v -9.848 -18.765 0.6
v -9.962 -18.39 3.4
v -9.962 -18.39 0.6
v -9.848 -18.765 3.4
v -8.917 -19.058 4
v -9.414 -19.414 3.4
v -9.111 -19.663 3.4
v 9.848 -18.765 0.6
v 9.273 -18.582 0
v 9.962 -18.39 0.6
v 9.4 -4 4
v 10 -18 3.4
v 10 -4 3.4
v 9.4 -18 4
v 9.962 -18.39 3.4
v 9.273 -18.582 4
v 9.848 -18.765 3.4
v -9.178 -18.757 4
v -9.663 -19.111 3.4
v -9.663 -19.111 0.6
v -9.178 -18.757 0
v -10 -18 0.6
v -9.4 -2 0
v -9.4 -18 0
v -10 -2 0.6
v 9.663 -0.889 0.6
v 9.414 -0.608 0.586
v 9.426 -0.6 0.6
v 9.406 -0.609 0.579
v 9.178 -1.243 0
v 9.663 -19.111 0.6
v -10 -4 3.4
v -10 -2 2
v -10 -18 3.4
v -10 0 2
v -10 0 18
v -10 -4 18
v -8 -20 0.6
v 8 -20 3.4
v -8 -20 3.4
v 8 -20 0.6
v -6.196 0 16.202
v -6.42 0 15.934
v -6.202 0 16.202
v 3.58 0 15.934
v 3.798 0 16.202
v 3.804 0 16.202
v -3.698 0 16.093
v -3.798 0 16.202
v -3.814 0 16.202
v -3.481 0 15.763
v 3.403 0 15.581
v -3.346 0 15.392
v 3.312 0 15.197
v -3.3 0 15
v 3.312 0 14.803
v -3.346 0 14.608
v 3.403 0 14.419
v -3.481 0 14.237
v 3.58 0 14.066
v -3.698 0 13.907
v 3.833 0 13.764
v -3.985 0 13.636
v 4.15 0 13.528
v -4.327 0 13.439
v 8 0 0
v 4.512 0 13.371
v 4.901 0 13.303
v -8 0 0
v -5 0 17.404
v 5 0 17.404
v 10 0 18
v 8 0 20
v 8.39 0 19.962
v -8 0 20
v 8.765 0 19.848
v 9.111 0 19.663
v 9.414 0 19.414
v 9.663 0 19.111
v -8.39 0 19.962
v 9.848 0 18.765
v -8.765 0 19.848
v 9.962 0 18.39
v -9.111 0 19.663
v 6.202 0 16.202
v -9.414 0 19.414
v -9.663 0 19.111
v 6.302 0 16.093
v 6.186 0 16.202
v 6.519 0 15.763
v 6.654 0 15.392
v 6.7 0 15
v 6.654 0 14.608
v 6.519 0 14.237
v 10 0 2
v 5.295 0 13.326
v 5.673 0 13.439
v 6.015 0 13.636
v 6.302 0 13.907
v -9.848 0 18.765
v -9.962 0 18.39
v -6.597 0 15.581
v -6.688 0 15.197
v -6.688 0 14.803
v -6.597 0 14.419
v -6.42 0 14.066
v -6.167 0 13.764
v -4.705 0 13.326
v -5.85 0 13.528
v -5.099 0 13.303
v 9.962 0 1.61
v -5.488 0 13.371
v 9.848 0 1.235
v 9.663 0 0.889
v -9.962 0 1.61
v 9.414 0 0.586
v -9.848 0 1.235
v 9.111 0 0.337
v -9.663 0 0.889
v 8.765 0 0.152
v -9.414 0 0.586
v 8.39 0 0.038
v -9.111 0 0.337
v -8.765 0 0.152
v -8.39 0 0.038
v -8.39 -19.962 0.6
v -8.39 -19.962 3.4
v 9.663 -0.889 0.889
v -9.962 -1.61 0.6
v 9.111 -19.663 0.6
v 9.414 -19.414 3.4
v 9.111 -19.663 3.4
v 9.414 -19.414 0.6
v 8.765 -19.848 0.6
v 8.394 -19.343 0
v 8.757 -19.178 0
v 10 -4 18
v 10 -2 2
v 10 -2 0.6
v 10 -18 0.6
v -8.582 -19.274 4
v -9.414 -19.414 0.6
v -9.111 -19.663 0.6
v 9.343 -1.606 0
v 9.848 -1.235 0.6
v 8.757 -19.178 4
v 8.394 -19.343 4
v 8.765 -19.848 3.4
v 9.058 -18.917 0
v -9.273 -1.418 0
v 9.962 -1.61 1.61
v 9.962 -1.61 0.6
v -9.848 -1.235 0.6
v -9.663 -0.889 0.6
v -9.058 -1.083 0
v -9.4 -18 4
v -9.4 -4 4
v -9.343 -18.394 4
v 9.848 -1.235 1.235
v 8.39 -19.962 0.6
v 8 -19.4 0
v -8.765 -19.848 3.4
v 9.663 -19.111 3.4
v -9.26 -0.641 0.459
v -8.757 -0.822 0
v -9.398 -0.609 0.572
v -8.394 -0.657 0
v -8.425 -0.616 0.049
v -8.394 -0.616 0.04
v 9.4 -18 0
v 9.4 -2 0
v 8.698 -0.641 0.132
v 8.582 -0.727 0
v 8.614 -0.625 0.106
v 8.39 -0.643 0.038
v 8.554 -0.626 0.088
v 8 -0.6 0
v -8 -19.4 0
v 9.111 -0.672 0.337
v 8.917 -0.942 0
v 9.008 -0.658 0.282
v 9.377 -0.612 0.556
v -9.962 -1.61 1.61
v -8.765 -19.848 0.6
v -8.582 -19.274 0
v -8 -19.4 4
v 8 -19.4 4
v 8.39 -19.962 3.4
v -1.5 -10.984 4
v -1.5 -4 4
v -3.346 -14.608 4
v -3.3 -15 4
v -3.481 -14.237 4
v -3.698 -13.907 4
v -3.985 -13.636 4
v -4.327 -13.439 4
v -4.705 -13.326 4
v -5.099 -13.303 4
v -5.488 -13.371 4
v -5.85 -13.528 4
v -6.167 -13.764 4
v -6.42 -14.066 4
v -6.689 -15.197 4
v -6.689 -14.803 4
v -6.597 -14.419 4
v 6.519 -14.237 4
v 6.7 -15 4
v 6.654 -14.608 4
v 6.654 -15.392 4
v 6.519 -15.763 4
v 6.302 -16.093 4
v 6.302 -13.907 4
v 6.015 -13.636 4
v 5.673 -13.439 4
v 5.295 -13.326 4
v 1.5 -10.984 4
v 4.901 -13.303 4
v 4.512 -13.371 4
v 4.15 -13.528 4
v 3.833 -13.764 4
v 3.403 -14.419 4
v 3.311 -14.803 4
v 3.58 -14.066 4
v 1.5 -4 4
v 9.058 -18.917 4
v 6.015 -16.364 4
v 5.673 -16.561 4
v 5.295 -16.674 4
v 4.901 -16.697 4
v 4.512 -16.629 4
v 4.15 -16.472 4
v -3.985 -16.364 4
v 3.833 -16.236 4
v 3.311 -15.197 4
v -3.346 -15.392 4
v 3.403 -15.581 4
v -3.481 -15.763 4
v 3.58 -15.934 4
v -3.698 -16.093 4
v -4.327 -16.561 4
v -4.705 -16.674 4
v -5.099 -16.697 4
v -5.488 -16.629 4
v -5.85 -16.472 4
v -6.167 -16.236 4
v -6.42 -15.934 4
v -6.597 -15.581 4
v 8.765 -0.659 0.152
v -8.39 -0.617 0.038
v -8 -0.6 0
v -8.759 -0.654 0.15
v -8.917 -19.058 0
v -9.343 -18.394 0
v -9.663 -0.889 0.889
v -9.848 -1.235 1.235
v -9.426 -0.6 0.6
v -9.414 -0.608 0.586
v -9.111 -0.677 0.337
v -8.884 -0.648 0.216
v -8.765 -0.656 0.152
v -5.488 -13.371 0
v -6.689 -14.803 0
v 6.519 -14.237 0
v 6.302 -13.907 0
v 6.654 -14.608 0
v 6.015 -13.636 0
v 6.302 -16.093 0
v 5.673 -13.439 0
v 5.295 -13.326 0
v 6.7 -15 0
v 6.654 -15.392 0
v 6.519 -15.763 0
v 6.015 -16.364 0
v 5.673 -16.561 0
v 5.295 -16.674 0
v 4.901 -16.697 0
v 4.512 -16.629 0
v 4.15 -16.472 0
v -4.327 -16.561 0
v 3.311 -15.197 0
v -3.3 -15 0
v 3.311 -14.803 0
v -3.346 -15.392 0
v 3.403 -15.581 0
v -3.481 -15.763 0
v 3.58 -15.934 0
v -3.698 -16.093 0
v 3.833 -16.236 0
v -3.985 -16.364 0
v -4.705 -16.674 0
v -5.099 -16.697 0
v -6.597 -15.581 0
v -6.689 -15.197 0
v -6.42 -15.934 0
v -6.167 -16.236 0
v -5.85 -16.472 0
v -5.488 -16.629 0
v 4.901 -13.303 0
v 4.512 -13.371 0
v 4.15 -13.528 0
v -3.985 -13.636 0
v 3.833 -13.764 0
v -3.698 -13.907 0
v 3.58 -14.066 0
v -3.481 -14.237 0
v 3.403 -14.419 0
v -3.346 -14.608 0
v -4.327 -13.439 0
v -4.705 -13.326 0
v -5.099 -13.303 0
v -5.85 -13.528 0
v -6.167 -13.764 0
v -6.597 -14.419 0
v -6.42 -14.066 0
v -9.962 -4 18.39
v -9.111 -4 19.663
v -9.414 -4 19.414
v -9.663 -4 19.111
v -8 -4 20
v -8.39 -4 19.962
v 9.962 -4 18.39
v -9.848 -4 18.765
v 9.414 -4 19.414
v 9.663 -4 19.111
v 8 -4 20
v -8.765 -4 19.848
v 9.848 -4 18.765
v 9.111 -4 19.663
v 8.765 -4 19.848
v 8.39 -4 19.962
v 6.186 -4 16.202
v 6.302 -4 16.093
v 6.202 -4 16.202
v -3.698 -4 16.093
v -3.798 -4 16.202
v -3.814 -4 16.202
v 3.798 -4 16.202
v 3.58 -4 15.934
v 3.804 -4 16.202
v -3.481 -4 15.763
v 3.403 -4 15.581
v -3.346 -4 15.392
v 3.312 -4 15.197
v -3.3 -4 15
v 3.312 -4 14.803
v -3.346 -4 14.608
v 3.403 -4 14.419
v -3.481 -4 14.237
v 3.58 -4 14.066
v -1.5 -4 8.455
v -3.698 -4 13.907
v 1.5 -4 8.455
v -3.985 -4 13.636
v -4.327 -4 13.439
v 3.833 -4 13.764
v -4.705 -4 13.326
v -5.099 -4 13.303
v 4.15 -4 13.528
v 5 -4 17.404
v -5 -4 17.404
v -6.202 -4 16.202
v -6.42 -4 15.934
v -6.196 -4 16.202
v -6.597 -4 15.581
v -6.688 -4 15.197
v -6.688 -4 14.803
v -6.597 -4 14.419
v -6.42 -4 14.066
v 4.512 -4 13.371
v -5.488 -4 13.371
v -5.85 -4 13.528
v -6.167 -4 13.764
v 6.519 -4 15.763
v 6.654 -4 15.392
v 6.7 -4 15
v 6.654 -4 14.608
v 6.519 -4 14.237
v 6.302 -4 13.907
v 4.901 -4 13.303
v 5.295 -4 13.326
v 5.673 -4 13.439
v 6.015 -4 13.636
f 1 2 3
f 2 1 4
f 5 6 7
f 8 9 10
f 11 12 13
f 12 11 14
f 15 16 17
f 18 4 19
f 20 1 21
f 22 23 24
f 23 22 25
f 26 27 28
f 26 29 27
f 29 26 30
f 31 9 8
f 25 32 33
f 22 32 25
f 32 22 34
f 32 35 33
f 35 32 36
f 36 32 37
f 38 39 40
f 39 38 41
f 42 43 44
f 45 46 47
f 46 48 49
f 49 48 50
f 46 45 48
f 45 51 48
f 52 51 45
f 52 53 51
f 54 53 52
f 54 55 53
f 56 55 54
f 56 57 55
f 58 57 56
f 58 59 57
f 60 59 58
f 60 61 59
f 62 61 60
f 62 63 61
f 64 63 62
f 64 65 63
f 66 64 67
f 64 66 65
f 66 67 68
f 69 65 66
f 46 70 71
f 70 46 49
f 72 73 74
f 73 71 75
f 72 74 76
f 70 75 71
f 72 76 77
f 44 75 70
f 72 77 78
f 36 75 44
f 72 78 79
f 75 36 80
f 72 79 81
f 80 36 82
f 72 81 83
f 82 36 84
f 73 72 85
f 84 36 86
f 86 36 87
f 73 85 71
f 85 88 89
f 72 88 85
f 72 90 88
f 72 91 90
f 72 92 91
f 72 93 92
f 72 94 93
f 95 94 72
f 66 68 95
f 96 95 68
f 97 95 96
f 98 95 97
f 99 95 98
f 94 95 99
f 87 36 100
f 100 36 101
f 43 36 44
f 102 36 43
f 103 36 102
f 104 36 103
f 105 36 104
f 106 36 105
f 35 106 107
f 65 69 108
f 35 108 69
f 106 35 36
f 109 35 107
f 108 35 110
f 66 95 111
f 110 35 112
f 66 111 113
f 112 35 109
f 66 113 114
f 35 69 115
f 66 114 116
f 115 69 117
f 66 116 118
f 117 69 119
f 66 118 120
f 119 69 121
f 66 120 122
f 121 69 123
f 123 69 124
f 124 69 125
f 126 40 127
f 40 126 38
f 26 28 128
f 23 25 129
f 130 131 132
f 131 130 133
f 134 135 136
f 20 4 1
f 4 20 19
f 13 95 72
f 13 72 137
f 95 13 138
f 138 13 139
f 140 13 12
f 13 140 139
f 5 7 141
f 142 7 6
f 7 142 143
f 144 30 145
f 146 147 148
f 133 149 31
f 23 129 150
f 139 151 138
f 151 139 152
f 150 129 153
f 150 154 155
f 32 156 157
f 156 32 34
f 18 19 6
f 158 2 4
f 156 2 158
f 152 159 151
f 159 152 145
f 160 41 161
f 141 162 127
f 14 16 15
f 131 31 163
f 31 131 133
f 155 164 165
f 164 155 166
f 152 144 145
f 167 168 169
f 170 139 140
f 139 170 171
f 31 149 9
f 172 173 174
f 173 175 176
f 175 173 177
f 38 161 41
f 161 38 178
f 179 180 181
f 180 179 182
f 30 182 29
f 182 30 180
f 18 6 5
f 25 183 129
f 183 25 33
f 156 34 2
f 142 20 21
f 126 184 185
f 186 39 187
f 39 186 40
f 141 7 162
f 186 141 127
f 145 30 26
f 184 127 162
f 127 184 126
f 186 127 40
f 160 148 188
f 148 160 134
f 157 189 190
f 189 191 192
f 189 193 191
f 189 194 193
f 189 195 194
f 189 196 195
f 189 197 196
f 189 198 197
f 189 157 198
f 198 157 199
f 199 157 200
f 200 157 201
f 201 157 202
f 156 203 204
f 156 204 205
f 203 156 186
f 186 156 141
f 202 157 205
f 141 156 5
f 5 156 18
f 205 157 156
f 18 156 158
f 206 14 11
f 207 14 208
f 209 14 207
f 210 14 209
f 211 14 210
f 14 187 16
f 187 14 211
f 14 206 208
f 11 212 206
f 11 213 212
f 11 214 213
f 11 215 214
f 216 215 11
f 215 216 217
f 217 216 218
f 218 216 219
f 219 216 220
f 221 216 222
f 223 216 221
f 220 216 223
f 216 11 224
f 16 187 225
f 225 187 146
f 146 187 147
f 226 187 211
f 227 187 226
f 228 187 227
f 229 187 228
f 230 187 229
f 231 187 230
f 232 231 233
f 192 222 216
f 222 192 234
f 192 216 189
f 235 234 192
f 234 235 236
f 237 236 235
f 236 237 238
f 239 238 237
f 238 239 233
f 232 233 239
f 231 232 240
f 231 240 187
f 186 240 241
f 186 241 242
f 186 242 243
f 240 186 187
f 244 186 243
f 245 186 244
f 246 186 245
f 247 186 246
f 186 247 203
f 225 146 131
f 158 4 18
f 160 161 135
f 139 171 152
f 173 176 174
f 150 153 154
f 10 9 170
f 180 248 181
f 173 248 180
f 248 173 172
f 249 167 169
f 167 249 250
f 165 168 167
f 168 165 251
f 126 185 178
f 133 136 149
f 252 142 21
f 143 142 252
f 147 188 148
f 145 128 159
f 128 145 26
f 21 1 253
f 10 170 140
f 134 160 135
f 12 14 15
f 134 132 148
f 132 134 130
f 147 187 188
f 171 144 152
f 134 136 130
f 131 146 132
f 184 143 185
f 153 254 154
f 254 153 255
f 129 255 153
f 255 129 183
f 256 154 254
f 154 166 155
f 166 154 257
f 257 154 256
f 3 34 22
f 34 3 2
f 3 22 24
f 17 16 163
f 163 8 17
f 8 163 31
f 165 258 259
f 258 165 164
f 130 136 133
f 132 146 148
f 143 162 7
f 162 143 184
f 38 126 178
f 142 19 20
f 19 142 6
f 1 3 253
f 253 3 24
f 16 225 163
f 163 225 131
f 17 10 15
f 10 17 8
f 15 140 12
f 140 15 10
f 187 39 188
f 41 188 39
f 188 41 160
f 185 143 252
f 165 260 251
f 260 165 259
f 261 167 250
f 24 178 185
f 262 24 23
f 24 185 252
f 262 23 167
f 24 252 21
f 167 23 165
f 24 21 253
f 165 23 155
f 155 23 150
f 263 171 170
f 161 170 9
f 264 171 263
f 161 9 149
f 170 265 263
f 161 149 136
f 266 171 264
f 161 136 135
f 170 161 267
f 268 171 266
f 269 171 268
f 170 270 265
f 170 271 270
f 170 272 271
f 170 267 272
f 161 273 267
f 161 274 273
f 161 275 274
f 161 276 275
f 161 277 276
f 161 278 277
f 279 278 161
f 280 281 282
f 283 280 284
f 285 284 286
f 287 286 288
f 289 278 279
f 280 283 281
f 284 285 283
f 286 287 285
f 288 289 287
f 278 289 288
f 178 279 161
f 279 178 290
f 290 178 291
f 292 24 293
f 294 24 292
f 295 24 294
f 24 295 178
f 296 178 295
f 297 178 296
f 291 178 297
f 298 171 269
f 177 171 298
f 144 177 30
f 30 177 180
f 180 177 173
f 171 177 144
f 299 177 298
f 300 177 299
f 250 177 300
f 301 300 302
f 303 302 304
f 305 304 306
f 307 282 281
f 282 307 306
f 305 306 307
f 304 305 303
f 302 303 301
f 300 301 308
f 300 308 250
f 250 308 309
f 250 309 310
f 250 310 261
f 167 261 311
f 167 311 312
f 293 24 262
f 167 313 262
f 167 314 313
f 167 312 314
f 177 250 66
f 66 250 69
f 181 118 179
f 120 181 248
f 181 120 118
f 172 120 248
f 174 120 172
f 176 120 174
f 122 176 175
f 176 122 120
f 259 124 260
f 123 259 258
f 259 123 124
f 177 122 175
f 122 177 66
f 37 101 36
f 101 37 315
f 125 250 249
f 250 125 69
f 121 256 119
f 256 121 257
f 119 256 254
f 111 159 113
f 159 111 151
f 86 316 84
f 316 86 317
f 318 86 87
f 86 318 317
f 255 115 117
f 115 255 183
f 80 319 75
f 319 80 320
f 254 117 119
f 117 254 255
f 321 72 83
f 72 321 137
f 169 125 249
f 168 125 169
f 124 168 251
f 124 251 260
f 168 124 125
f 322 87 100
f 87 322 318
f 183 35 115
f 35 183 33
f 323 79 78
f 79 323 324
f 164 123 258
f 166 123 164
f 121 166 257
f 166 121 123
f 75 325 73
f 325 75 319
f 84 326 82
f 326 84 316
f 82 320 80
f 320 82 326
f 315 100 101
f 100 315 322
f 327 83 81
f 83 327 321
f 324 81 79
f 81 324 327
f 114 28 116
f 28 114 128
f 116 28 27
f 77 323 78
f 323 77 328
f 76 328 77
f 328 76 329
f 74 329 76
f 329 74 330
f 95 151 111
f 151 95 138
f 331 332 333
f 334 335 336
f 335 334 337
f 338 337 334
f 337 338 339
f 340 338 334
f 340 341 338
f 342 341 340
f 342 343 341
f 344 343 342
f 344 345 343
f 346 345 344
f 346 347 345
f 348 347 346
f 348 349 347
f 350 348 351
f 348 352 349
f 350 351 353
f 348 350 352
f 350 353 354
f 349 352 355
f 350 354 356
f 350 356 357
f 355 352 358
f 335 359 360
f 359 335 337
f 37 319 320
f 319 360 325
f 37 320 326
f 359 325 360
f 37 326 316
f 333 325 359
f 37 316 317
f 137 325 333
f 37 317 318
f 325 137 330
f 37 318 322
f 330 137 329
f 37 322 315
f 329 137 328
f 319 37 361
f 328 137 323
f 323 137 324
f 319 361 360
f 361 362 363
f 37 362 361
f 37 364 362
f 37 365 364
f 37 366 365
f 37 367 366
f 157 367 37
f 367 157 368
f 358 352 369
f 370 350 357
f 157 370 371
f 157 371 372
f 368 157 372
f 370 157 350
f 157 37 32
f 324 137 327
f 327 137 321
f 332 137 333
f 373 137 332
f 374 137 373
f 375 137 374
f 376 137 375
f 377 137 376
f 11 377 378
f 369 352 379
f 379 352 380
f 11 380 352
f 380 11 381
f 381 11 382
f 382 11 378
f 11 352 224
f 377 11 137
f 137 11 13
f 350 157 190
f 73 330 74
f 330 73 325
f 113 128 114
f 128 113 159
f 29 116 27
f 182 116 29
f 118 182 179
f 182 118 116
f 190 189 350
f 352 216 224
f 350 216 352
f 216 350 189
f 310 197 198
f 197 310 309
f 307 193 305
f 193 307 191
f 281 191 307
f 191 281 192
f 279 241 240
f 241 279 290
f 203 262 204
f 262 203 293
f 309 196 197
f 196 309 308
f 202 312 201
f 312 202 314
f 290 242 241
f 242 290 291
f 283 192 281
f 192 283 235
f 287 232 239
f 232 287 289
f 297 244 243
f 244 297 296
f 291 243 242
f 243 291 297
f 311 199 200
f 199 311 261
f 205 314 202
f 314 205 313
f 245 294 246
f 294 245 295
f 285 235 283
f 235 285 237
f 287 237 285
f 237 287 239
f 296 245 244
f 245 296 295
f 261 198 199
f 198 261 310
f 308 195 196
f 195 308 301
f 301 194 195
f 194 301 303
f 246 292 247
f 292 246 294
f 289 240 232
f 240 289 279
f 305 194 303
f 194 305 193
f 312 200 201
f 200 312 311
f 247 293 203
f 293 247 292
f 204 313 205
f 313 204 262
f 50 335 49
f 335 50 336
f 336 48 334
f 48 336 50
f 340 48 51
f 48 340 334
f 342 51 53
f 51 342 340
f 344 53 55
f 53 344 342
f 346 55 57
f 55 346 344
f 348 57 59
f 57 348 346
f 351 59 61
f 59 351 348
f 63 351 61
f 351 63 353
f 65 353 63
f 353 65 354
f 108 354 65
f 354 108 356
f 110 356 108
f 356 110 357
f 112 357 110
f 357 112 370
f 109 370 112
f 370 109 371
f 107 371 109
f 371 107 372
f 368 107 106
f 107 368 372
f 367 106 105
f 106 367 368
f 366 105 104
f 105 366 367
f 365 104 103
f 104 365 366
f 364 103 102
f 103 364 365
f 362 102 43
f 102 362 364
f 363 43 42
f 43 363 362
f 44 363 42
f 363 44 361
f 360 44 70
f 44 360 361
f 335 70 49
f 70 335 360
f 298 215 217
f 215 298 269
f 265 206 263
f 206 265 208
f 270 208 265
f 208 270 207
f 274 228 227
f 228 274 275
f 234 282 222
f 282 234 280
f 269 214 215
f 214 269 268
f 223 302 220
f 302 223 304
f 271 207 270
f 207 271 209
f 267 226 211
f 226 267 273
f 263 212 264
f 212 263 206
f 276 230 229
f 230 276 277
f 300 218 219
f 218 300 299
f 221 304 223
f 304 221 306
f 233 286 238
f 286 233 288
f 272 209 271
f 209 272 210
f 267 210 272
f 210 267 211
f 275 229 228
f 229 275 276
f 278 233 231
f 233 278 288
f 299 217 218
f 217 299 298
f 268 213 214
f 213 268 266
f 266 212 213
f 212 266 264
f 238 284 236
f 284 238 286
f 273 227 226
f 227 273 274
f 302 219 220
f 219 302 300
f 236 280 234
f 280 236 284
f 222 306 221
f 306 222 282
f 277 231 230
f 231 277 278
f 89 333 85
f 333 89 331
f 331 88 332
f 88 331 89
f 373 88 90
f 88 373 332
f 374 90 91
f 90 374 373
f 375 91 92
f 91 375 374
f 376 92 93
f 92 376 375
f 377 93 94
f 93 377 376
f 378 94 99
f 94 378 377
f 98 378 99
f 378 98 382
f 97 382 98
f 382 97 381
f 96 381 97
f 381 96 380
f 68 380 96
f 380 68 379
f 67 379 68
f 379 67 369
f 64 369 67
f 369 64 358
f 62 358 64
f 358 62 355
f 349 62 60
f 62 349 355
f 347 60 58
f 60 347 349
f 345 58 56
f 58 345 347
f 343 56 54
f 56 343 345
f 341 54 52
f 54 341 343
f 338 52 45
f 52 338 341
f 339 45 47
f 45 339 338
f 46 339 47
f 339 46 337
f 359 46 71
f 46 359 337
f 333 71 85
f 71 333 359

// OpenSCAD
// file: ../stem_core.scad
// =====================================================================
//  stem_core.scad — shared geometry helpers for every STEM_KIT part.
// =====================================================================
include <../PARAMETERS/config.scad>
// =====================================================================

// ---------- rounded / chamfered prisms --------------------------------

// Rounded rectangle (2D), centred.
module rrect(size, r) {
    rr = min(r, min(size[0], size[1]) / 2 - 0.01);
    offset(r = rr) square([size[0] - 2 * rr, size[1] - 2 * rr], center = true);
}

// Box with rounded vertical edges, chamfered bottom edge (elephant-foot
// relief) and rounded-ish (chamfered) top edge. Sits on z = 0, centred XY.
module rbox(size, r = 2, top = edge_r, bottom = chamfer) {
    h = size[2];
    hull() {
        linear_extrude(0.01) rrect([size[0] - 2 * bottom, size[1] - 2 * bottom], max(r - bottom, 0.1));
        translate([0, 0, bottom]) linear_extrude(h - bottom - top) rrect([size[0], size[1]], r);
        translate([0, 0, h - 0.01]) linear_extrude(0.01) rrect([size[0] - 2 * top, size[1] - 2 * top], max(r - top, 0.1));
    }
}

// Cylinder with chamfered/rounded top and bottom edges (safe hubs, knobs).
module rcyl(d, h, top = edge_r, bottom = chamfer) {
    rotate_extrude() polygon([
        [0, 0], [d / 2 - bottom, 0], [d / 2, bottom],
        [d / 2, h - top], [d / 2 - top, h], [0, h]
    ]);
}

// Stadium (slot / rounded bar) 2D between two points on the X axis.
module stadium2d(len, w) {
    hull() { circle(d = w); translate([len, 0]) circle(d = w); }
}

// ---------- holes ------------------------------------------------------

// Vertical through hole with small top/bottom chamfers.
module vhole(d = grid_hole_d, h = 50, ch = 0.4) {
    translate([0, 0, -h / 2]) cylinder(d = d, h = h);
}

// Horizontal hole along +Y, printable without supports (teardrop tip up).
module teardrop_y(d, len, center = true) {
    translate([0, center ? -len / 2 : 0, 0]) rotate([-90, 0, 0])
        linear_extrude(len) teardrop2d(d);
}
module teardrop_x(d, len, center = true) {
    translate([center ? -len / 2 : 0, 0, 0]) rotate([0, 90, 0]) rotate([0, 0, -90])
        linear_extrude(len) teardrop2d(d);
}
// 2D teardrop: circle + 45° roof pointing "up" in the final part (+Z).
// After rotate([-90,0,0]) local +Y becomes -Z, so the roof points to -Y here.
module teardrop2d(d) {
    r = d / 2;
    union() {
        circle(d = d);
        polygon([[-r * sqrt(2) / 2, -r * sqrt(2) / 2], [0, -r * sqrt(2)], [r * sqrt(2) / 2, -r * sqrt(2) / 2]]);
    }
}

// Hex nut pocket (flat sides parallel to X), opening at z = 0 going +Z.
module nut_pocket(depth = nut_pocket_depth, af = nut_pocket_af) {
    cylinder(d = af / cos(30), h = depth, $fn = 6);
}

// Side-entry nut slot: nut plane is XY, slot opens toward +dir (X).
// Centred on the screw axis (Z), slot height nut_slot_t, runs out `len`.
module nut_slot_x(len = 10, af = nut_pocket_af, t = nut_slot_t) {
    translate([0, 0, -t / 2]) hull() {
        cylinder(d = af / cos(30), h = t, $fn = 6);
        translate([len, 0, 0]) cylinder(d = af / cos(30), h = t, $fn = 6);
    }
}

// Counterbored clearance hole from top surface at height `top` downward.
module cbore(top, depth, d = counterbore_d) {
    translate([0, 0, top - depth]) cylinder(d = d, h = depth + 20);
    translate([0, 0, -20]) cylinder(d = grid_hole_d, h = top + 40);
}

// Grid of vertical holes: nx x ny, pitch grid_pitch, first hole centred
// at `origin` (XY). Used by every plate.
module grid_holes(nx, ny, origin = [0, 0], h = 100, d = grid_hole_d) {
    for (i = [0 : nx - 1], j = [0 : ny - 1])
        translate([origin[0] + i * grid_pitch, origin[1] + j * grid_pitch, 0]) vhole(d, h);
}

// Slot (for adjustable mounting) along X, length = travel.
module slot_x(travel, d = grid_hole_d, h = 100) {
    translate([-travel / 2, 0, -h / 2]) linear_extrude(h) stadium2d(travel, d);
}

// ---------- shaft bores ------------------------------------------------

// 2D bore profile: round, or D if shaft_flat > 0.
module bore2d(d) {
    if (shaft_flat > 0)
        intersection() { circle(d = d); translate([-d, -d / 2]) square([2 * d, d - shaft_flat + (d - shaft_diameter) / 2]); }
    else circle(d = d);
}

// Standard HUB: cylinder hub_d x hub_h standing on z = z0, with bore,
// radial M3 set screw at mid height and a captive-nut slot from the top.
// Call inside difference() for the cut-outs: hub_body()/hub_cuts().
module hub_body(z0, d = hub_d, h = hub_h) {
    translate([0, 0, z0]) rcyl(d, h, top = 0.8, bottom = 0);
}
module hub_cuts(z0, total_h, d = hub_d, h = hub_h, bore = shaft_fixed_bore, set_screw = true, screw_angle = 0) {
    // bore through everything
    translate([0, 0, -1]) linear_extrude(total_h + 2) bore2d(bore);
    // entry chamfer on bore
    translate([0, 0, total_h - 0.6]) cylinder(d1 = bore, d2 = bore + 1.2, h = 0.61);
    translate([0, 0, -0.01]) cylinder(d1 = bore + 1.2, d2 = bore, h = 0.6);
    if (set_screw) rotate([0, 0, screw_angle]) {
        zs = z0 + h / 2;
        // radial screw hole (teardrop, prints without support)
        translate([0, 0, zs]) teardrop_x(screw_clear_d, d, center = false);
        // captive nut slot, entered from the hub top face
        nr = bore / 2 + (d / 2 - bore / 2) / 2;       // radial position of nut
        translate([nr - nut_slot_t / 2, -nut_pocket_af / 2, zs - nut_pocket_af / cos(30) / 2 - 0.1])
            cube([nut_slot_t, nut_pocket_af, total_h + 10]);   // open to the hub top face
    }
}

// ---------- labels -----------------------------------------------------

// Engrave text into a top surface at height z (depth 0.6 = 3 layers).
module engrave(txt, size = 5, z = 0, depth = 0.6, halign = "center") {
    translate([0, 0, z - depth]) linear_extrude(depth + 1)
        text(txt, size = size, font = "Liberation Sans:style=Bold", halign = halign, valign = "center");
}

// ---------- misc -------------------------------------------------------

function grid_snap(v) = ceil(v / grid_pitch) * grid_pitch;
// file: ../../PARAMETERS/config.scad
// =====================================================================
//  STEM_KIT — CENTRAL PARAMETER FILE  ("ForgeGrid" mechanical standard)
// ---------------------------------------------------------------------
//  Every part in the library includes this file. Change a value here,
//  run `python3 tools/build.py`, and the whole library regenerates.
//  All dimensions in millimetres.
// =====================================================================

// ---------------------------------------------------------------------
// 1. PRINTER / PROCESS
// ---------------------------------------------------------------------
nozzle          = 0.4;
layer_height    = 0.2;
tolerance       = 0.2;    // sliding clearance per side (tune with STEM_TOLERANCE_TEST)
press_allow     = 0.05;   // extra for press fits (bores that should grip)
min_wall        = 1.6;    // never go below this
wall_thickness  = 2.4;    // preferred wall (6 perimeters @ 0.4)
edge_r          = 1.0;    // rounding of exposed edges (child safety)
chamfer         = 0.6;    // bottom-edge chamfer (elephant-foot relief)

$fa = 6;                  // facet angle
$fs = 0.4;                // facet size

// ---------------------------------------------------------------------
// 2. GRID  (the heart of the ecosystem)
// ---------------------------------------------------------------------
//  Holes sit on a 10 mm lattice, 5 mm in from every plate edge, so
//  plates placed side by side keep one continuous lattice.
grid_pitch            = 10;
plate_size            = 100;   // universal base plate (square)
plate_thickness       = 6;     // base plates, rails, chassis
foot_thickness        = 4;     // flange / foot of every mount
//  => standard joint: 4 mm foot + 6 mm plate = M3 x 10 screw, nut in
//     the hex pocket under the plate. One screw length does 90 % of joints.

// ---------------------------------------------------------------------
// 3. FASTENERS (M3 everywhere: one screwdriver, one nut)
// ---------------------------------------------------------------------
screw_size            = 3;
screw_clear_d         = 3.4;   // clearance hole (also the grid hole)
grid_hole_d           = screw_clear_d;
screw_tap_d           = 2.6;   // hole a screw self-taps into
screw_head_d          = 5.7;   // ISO 7380 BUTTON head = kit standard (low, rounded, child-safe)
screw_head_h          = 1.65;
counterbore_d         = 6.4;
nut_af                = 5.5;   // M3 nut across flats
nut_thick             = 2.4;
nut_pocket_af         = nut_af + 0.35;
nut_pocket_depth      = 3.0;   // pocket under plates (nut sits flush)
nut_slot_t            = nut_thick + 0.4;  // side-entry slot thickness
set_screw_len         = 6;     // M3 x 6 grub screw for hubs

// ---------------------------------------------------------------------
// 4. SHAFTS
// ---------------------------------------------------------------------
//  Default: 3 mm steel rod (silver steel / stainless). Printed shafts
//  are provided for light-duty use. Alternative systems: set
//  shaft_diameter = 4 or 5 and rebuild.
shaft_diameter        = 3;
shaft_flat            = 0;     // >0 : D-shaft, flat depth (e.g. 0.5)
shaft_fixed_bore      = shaft_diameter + 0.15;  // hub bore (set-screw locked)
shaft_free_bore       = shaft_diameter + 0.4;   // free-spinning bore / bushing
shaft_lengths         = [40, 60, 80, 100, 120];

//  Horizontal shafts: all pillow blocks, motor mounts and axle mounts
//  put their axis at this height above the surface they are bolted to,
//  so any two of them on the grid are automatically coaxial/parallel.
axis_height           = 17;
axis_height_high      = 37;    // = axis_height + 2 pitches (pulleys, big wheels)

// ---------------------------------------------------------------------
// 5. BEARINGS
// ---------------------------------------------------------------------
bearing_size          = [5, 16, 5];   // 625 : bore, OD, width (default housing)
bearing_small         = [3, 10, 4];   // 623 : fits 3 mm shafts via adapter ring
bearing_pocket_d      = bearing_size[1] + 0.15;

// ---------------------------------------------------------------------
// 6. GEARS
// ---------------------------------------------------------------------
//  Module 2 + tooth counts that are multiples of 10  =>  centre distance
//  = (z1+z2) mm is ALWAYS a multiple of 10  =>  ANY two gears mesh when
//  their shafts sit in grid holes. (3-4-5 diagonals also work: 50 mm.)
gear_module           = 2;
gear_pressure_angle   = 20;
gear_width            = 6;
gear_backlash         = 0.30;  // total circular backlash per mesh
gear_clearance_k      = 0.25;  // root clearance = k * module
gear_teeth_set        = [10, 20, 30, 40];
//  Gearbox frame: two frame plates, outer faces 60 mm apart (on grid),
//  48 mm gap = three gear levels (A, M, B).
frame_gap             = 48;
hub_d                 = 14;
hub_h                 = 7;

// ---------------------------------------------------------------------
// 7. WHEELS / PULLEYS
// ---------------------------------------------------------------------
wheel_diameter        = 60;
wheel_width           = 10;
axle_diameter         = shaft_diameter;
oring_cs              = 3.0;    // O-ring cross-section used as tyre / belt
belt_cs               = 2.5;    // O-ring / round-belt cord for pulleys
pulley_sizes          = [20, 40, 60];  // effective (belt-line) diameters

// ---------------------------------------------------------------------
// 8. MOTORS (130-size toy / solar motor is the default)
// ---------------------------------------------------------------------
motor_size            = [20.2, 15.2, 25.2]; // body dia, across-flats, length
motor_d               = motor_size[0];
motor_flat            = motor_size[1];
motor_len             = motor_size[2];
motor_boss_d          = 6.2;
motor_boss_h          = 1.6;
motor_shaft_d         = 2.0;
motor_shaft_len       = 8.5;   // beyond boss
motor_shaft_bore      = 1.9;   // press fit onto 2 mm motor shaft

// ---------------------------------------------------------------------
// 9. SOLAR PANEL (bought, not printed) — frame is parametric
// ---------------------------------------------------------------------
solar_panel_size      = [110, 69, 3.0];  // 5 V 1 W epoxy panel (common)
solar_panel_clear     = 0.6;

// ---------------------------------------------------------------------
// 10. ELECTRONICS
// ---------------------------------------------------------------------
mounting_hole_spacing = grid_pitch;   // everything bolts to the grid
electronics_slot_w    = screw_clear_d;
led_hole_d            = 5.1;
buzzer_hole_d         = 12.2;

// ---------------------------------------------------------------------
// 11. SAFETY LIMITS (checked by tools/qc.py)
// ---------------------------------------------------------------------
max_part_voltage      = 12;    // nothing in this kit uses more
min_rim_thickness     = 2.0;   // blades/links: no edge thinner than this
finger_gap_max        = 6;     // guard openings smaller than a child's finger
// main file
// =====================================================================
//  PART: corner connector (90° bracket) — COMMON/connectors
//  Stands any plate/rail upright on the grid. Horizontal leg bolts to
//  the base (hole 15 mm from the vertical face); vertical leg bolts to
//  the upright plate (hole 15 mm above the base). Both stay on the grid
//  when the upright's face is on a grid line (multiple of 10 mm).
//  Coordinates: vertical face at y = 0, bracket occupies y < 0.
//  Print: horizontal leg on the bed. No supports (teardrop hole).
// =====================================================================
include <../../PARAMETERS/config.scad>
use <../stem_core.scad>

corner_connector();

module corner_connector(width = 2 * grid_pitch, reach = 2 * grid_pitch) {
    t = foot_thickness;
    difference() {
        union() {
            // horizontal leg
            translate([0, -reach / 2, 0]) rbox([width, reach, t], r = 2, top = 0.6);
            // vertical leg
            translate([0, -t / 2, 0]) rotate([90, 0, 0]) translate([0, 0, -t / 2])
                linear_extrude(t) translate([0, reach / 2]) rrect([width, reach], 2);
            // central gusset (between the screw heads)
            translate([-1.5, 0, 0]) rotate([90, 0, 90]) linear_extrude(3)
                polygon([[-0.01, t - 0.01], [-(reach - 9), t - 0.01], [-0.01, reach - 9]]);
        }
        for (x = [-grid_pitch / 2, grid_pitch / 2]) {
            // horizontal leg holes (vertical axis) at y = -15
            translate([x, -1.5 * grid_pitch, 0]) vhole(grid_hole_d, 20);
            // vertical leg holes (along Y) at z = 15
            translate([x, 0, 1.5 * grid_pitch]) teardrop_y(grid_hole_d, 20);
        }
    }
}
